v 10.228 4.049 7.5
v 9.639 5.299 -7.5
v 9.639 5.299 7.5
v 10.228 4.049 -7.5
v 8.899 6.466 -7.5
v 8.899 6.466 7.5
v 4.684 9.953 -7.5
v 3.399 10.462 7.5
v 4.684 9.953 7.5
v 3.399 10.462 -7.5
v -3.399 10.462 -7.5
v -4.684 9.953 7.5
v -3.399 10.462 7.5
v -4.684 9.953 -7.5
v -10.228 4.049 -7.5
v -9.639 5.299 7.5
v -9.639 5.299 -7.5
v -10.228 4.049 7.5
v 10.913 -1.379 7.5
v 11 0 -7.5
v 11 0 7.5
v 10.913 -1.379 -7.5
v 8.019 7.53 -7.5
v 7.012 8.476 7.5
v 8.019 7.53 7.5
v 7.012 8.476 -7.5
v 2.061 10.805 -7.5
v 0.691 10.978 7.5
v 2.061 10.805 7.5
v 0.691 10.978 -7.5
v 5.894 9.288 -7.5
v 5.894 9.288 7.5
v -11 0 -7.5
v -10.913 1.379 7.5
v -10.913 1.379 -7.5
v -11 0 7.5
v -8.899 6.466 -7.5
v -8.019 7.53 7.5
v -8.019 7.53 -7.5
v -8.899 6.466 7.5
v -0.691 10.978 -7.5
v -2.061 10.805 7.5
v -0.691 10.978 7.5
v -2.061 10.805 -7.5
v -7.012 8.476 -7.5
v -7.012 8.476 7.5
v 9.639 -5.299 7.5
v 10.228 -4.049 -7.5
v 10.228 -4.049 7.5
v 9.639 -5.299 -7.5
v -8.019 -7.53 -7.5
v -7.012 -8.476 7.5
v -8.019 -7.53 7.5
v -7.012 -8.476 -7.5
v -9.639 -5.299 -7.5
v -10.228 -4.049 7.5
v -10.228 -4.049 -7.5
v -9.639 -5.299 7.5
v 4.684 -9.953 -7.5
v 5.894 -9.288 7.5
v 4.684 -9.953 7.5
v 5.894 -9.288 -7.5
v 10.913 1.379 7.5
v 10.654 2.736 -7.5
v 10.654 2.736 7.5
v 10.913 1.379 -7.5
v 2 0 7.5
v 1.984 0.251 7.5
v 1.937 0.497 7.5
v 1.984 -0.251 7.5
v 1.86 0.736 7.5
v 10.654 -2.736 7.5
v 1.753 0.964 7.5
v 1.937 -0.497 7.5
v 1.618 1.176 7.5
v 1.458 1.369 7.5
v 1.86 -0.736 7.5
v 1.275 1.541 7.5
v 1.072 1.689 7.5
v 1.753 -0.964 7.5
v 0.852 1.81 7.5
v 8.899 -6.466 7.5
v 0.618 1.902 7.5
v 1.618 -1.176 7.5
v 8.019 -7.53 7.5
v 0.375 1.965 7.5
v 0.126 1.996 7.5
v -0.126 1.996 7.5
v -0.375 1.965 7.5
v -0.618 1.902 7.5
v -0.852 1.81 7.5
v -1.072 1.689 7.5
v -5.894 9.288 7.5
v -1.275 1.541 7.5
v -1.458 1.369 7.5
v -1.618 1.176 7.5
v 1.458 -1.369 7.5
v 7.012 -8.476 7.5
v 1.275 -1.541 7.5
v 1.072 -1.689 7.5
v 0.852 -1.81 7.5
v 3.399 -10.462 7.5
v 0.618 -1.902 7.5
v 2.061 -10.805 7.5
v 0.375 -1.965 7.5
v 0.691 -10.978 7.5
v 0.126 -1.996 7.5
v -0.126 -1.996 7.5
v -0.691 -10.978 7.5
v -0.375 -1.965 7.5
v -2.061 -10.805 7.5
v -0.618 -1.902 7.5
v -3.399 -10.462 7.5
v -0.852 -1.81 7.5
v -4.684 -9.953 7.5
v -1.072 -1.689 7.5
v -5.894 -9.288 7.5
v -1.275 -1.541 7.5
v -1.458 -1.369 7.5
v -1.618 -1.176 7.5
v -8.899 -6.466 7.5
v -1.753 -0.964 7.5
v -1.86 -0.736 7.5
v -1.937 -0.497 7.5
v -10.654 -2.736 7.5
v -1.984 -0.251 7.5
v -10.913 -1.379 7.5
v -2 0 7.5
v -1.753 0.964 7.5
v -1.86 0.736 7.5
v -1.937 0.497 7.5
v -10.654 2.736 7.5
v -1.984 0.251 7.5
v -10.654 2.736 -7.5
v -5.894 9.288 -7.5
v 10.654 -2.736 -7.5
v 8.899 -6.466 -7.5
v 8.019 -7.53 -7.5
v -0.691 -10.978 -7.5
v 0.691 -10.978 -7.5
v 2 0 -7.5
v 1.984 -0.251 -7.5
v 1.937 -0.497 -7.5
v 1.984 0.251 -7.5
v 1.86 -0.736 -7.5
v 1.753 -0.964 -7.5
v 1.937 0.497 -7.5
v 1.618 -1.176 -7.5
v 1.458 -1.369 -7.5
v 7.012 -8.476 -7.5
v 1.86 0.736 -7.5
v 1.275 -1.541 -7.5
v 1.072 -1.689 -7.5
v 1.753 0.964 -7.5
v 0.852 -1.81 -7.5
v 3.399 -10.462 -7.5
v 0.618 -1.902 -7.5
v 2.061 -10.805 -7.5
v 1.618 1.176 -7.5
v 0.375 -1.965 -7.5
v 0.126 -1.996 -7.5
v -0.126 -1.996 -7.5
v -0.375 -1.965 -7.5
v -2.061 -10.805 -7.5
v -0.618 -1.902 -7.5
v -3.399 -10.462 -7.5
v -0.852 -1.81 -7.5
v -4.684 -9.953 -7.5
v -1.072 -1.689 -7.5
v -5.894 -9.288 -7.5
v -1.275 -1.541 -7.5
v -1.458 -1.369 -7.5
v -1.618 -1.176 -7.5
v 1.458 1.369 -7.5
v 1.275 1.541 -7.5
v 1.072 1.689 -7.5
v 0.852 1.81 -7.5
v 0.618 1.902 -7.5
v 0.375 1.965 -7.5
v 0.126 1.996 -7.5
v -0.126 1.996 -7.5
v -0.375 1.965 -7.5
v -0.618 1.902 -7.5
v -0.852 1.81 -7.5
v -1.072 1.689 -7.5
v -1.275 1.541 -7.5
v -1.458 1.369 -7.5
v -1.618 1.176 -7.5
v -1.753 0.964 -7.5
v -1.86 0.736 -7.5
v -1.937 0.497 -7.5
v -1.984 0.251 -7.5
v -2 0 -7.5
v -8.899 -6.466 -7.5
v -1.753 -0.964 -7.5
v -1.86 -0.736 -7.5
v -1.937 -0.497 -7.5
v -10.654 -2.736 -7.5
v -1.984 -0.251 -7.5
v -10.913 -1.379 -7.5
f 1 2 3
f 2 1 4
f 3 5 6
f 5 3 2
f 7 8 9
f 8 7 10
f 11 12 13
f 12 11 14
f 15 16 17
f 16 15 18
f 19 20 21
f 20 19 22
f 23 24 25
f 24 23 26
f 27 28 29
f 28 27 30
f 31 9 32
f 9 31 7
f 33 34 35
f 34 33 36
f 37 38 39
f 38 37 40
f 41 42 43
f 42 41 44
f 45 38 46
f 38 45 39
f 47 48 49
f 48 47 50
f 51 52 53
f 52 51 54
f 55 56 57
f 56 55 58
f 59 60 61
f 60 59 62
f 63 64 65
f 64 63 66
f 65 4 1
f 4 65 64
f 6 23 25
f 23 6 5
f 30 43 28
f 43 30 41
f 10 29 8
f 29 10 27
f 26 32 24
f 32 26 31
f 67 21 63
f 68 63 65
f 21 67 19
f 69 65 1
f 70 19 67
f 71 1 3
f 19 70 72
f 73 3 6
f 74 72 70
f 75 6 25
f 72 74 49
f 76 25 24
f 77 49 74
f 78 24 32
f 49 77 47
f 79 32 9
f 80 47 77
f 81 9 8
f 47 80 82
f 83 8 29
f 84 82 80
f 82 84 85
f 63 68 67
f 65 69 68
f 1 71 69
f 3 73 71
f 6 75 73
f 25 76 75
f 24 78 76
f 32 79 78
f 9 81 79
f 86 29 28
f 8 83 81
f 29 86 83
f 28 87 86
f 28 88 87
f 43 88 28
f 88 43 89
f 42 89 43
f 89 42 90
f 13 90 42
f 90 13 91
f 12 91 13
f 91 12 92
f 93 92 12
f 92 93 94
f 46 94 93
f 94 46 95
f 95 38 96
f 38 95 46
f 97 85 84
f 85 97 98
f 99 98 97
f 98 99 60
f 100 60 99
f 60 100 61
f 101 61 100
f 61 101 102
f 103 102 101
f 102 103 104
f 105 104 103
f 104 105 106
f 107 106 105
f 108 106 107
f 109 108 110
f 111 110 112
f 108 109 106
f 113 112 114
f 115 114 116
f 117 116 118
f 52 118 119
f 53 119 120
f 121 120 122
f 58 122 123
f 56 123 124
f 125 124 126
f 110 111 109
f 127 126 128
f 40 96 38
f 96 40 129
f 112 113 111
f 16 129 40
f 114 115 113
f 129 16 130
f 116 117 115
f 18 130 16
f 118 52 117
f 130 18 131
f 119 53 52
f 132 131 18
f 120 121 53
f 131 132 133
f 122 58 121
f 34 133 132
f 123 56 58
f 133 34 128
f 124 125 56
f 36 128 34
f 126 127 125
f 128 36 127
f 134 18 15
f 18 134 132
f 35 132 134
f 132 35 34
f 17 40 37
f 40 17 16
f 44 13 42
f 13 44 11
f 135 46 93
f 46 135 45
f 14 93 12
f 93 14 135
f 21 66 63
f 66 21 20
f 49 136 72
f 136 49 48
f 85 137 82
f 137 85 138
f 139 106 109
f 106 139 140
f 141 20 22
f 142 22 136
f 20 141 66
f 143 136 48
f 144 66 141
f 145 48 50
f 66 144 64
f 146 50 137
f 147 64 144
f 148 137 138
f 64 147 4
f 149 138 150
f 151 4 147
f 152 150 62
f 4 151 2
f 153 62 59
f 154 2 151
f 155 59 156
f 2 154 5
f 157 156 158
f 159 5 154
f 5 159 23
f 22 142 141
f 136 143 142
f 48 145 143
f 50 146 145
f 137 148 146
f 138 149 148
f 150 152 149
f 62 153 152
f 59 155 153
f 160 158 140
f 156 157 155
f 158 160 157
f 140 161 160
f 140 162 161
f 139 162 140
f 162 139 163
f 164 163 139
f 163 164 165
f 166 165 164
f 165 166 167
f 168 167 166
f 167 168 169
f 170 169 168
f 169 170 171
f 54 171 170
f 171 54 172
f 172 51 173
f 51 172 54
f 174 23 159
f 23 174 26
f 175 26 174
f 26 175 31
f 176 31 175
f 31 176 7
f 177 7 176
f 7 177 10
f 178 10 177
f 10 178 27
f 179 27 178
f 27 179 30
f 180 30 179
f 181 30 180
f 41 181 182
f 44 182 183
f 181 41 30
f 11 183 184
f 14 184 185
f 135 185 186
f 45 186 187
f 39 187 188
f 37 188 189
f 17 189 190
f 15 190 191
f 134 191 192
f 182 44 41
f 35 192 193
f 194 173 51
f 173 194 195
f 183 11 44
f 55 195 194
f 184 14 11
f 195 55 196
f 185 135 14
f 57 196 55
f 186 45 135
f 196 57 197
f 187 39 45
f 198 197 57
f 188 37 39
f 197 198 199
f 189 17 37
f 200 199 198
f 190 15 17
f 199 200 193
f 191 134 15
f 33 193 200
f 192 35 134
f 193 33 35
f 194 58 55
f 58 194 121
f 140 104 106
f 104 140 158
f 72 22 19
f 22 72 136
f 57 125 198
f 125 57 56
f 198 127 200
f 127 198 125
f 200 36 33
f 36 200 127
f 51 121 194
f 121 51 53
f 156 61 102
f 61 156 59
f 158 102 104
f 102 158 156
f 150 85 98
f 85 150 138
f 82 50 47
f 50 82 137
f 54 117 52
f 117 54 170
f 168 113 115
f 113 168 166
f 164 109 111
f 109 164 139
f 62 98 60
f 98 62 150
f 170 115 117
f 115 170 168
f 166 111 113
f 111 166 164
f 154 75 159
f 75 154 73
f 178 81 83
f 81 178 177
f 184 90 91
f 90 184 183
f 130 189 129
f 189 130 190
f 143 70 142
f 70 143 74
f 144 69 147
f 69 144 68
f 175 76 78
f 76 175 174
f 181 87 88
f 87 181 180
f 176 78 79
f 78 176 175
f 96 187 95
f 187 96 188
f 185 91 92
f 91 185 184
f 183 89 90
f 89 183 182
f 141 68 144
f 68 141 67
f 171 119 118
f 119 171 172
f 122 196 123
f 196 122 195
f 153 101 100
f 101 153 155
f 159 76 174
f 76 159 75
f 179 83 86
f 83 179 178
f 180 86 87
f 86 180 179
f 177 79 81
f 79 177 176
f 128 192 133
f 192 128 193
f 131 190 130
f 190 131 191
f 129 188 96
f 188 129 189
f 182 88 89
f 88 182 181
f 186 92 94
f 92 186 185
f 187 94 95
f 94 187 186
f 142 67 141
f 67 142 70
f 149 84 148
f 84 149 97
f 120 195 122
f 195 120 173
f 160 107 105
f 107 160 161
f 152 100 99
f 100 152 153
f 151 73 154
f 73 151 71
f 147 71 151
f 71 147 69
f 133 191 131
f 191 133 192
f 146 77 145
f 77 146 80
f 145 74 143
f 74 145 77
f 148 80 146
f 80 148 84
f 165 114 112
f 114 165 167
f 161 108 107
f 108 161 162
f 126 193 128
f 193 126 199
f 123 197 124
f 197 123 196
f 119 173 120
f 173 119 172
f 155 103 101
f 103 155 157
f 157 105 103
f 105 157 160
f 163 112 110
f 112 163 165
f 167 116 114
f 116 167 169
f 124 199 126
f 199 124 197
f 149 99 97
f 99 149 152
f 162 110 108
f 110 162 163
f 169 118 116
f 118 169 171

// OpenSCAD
$fn = 50;


difference() {
	union() {
		translate(v = [0, 0, -7.5000000000]) {
			cylinder(h = 15, r = 11.0000000000);
		}
	}
	union() {
		translate(v = [0, 0, -100.0000000000]) {
			cylinder(h = 200, r = 2);
		}
	}
}
